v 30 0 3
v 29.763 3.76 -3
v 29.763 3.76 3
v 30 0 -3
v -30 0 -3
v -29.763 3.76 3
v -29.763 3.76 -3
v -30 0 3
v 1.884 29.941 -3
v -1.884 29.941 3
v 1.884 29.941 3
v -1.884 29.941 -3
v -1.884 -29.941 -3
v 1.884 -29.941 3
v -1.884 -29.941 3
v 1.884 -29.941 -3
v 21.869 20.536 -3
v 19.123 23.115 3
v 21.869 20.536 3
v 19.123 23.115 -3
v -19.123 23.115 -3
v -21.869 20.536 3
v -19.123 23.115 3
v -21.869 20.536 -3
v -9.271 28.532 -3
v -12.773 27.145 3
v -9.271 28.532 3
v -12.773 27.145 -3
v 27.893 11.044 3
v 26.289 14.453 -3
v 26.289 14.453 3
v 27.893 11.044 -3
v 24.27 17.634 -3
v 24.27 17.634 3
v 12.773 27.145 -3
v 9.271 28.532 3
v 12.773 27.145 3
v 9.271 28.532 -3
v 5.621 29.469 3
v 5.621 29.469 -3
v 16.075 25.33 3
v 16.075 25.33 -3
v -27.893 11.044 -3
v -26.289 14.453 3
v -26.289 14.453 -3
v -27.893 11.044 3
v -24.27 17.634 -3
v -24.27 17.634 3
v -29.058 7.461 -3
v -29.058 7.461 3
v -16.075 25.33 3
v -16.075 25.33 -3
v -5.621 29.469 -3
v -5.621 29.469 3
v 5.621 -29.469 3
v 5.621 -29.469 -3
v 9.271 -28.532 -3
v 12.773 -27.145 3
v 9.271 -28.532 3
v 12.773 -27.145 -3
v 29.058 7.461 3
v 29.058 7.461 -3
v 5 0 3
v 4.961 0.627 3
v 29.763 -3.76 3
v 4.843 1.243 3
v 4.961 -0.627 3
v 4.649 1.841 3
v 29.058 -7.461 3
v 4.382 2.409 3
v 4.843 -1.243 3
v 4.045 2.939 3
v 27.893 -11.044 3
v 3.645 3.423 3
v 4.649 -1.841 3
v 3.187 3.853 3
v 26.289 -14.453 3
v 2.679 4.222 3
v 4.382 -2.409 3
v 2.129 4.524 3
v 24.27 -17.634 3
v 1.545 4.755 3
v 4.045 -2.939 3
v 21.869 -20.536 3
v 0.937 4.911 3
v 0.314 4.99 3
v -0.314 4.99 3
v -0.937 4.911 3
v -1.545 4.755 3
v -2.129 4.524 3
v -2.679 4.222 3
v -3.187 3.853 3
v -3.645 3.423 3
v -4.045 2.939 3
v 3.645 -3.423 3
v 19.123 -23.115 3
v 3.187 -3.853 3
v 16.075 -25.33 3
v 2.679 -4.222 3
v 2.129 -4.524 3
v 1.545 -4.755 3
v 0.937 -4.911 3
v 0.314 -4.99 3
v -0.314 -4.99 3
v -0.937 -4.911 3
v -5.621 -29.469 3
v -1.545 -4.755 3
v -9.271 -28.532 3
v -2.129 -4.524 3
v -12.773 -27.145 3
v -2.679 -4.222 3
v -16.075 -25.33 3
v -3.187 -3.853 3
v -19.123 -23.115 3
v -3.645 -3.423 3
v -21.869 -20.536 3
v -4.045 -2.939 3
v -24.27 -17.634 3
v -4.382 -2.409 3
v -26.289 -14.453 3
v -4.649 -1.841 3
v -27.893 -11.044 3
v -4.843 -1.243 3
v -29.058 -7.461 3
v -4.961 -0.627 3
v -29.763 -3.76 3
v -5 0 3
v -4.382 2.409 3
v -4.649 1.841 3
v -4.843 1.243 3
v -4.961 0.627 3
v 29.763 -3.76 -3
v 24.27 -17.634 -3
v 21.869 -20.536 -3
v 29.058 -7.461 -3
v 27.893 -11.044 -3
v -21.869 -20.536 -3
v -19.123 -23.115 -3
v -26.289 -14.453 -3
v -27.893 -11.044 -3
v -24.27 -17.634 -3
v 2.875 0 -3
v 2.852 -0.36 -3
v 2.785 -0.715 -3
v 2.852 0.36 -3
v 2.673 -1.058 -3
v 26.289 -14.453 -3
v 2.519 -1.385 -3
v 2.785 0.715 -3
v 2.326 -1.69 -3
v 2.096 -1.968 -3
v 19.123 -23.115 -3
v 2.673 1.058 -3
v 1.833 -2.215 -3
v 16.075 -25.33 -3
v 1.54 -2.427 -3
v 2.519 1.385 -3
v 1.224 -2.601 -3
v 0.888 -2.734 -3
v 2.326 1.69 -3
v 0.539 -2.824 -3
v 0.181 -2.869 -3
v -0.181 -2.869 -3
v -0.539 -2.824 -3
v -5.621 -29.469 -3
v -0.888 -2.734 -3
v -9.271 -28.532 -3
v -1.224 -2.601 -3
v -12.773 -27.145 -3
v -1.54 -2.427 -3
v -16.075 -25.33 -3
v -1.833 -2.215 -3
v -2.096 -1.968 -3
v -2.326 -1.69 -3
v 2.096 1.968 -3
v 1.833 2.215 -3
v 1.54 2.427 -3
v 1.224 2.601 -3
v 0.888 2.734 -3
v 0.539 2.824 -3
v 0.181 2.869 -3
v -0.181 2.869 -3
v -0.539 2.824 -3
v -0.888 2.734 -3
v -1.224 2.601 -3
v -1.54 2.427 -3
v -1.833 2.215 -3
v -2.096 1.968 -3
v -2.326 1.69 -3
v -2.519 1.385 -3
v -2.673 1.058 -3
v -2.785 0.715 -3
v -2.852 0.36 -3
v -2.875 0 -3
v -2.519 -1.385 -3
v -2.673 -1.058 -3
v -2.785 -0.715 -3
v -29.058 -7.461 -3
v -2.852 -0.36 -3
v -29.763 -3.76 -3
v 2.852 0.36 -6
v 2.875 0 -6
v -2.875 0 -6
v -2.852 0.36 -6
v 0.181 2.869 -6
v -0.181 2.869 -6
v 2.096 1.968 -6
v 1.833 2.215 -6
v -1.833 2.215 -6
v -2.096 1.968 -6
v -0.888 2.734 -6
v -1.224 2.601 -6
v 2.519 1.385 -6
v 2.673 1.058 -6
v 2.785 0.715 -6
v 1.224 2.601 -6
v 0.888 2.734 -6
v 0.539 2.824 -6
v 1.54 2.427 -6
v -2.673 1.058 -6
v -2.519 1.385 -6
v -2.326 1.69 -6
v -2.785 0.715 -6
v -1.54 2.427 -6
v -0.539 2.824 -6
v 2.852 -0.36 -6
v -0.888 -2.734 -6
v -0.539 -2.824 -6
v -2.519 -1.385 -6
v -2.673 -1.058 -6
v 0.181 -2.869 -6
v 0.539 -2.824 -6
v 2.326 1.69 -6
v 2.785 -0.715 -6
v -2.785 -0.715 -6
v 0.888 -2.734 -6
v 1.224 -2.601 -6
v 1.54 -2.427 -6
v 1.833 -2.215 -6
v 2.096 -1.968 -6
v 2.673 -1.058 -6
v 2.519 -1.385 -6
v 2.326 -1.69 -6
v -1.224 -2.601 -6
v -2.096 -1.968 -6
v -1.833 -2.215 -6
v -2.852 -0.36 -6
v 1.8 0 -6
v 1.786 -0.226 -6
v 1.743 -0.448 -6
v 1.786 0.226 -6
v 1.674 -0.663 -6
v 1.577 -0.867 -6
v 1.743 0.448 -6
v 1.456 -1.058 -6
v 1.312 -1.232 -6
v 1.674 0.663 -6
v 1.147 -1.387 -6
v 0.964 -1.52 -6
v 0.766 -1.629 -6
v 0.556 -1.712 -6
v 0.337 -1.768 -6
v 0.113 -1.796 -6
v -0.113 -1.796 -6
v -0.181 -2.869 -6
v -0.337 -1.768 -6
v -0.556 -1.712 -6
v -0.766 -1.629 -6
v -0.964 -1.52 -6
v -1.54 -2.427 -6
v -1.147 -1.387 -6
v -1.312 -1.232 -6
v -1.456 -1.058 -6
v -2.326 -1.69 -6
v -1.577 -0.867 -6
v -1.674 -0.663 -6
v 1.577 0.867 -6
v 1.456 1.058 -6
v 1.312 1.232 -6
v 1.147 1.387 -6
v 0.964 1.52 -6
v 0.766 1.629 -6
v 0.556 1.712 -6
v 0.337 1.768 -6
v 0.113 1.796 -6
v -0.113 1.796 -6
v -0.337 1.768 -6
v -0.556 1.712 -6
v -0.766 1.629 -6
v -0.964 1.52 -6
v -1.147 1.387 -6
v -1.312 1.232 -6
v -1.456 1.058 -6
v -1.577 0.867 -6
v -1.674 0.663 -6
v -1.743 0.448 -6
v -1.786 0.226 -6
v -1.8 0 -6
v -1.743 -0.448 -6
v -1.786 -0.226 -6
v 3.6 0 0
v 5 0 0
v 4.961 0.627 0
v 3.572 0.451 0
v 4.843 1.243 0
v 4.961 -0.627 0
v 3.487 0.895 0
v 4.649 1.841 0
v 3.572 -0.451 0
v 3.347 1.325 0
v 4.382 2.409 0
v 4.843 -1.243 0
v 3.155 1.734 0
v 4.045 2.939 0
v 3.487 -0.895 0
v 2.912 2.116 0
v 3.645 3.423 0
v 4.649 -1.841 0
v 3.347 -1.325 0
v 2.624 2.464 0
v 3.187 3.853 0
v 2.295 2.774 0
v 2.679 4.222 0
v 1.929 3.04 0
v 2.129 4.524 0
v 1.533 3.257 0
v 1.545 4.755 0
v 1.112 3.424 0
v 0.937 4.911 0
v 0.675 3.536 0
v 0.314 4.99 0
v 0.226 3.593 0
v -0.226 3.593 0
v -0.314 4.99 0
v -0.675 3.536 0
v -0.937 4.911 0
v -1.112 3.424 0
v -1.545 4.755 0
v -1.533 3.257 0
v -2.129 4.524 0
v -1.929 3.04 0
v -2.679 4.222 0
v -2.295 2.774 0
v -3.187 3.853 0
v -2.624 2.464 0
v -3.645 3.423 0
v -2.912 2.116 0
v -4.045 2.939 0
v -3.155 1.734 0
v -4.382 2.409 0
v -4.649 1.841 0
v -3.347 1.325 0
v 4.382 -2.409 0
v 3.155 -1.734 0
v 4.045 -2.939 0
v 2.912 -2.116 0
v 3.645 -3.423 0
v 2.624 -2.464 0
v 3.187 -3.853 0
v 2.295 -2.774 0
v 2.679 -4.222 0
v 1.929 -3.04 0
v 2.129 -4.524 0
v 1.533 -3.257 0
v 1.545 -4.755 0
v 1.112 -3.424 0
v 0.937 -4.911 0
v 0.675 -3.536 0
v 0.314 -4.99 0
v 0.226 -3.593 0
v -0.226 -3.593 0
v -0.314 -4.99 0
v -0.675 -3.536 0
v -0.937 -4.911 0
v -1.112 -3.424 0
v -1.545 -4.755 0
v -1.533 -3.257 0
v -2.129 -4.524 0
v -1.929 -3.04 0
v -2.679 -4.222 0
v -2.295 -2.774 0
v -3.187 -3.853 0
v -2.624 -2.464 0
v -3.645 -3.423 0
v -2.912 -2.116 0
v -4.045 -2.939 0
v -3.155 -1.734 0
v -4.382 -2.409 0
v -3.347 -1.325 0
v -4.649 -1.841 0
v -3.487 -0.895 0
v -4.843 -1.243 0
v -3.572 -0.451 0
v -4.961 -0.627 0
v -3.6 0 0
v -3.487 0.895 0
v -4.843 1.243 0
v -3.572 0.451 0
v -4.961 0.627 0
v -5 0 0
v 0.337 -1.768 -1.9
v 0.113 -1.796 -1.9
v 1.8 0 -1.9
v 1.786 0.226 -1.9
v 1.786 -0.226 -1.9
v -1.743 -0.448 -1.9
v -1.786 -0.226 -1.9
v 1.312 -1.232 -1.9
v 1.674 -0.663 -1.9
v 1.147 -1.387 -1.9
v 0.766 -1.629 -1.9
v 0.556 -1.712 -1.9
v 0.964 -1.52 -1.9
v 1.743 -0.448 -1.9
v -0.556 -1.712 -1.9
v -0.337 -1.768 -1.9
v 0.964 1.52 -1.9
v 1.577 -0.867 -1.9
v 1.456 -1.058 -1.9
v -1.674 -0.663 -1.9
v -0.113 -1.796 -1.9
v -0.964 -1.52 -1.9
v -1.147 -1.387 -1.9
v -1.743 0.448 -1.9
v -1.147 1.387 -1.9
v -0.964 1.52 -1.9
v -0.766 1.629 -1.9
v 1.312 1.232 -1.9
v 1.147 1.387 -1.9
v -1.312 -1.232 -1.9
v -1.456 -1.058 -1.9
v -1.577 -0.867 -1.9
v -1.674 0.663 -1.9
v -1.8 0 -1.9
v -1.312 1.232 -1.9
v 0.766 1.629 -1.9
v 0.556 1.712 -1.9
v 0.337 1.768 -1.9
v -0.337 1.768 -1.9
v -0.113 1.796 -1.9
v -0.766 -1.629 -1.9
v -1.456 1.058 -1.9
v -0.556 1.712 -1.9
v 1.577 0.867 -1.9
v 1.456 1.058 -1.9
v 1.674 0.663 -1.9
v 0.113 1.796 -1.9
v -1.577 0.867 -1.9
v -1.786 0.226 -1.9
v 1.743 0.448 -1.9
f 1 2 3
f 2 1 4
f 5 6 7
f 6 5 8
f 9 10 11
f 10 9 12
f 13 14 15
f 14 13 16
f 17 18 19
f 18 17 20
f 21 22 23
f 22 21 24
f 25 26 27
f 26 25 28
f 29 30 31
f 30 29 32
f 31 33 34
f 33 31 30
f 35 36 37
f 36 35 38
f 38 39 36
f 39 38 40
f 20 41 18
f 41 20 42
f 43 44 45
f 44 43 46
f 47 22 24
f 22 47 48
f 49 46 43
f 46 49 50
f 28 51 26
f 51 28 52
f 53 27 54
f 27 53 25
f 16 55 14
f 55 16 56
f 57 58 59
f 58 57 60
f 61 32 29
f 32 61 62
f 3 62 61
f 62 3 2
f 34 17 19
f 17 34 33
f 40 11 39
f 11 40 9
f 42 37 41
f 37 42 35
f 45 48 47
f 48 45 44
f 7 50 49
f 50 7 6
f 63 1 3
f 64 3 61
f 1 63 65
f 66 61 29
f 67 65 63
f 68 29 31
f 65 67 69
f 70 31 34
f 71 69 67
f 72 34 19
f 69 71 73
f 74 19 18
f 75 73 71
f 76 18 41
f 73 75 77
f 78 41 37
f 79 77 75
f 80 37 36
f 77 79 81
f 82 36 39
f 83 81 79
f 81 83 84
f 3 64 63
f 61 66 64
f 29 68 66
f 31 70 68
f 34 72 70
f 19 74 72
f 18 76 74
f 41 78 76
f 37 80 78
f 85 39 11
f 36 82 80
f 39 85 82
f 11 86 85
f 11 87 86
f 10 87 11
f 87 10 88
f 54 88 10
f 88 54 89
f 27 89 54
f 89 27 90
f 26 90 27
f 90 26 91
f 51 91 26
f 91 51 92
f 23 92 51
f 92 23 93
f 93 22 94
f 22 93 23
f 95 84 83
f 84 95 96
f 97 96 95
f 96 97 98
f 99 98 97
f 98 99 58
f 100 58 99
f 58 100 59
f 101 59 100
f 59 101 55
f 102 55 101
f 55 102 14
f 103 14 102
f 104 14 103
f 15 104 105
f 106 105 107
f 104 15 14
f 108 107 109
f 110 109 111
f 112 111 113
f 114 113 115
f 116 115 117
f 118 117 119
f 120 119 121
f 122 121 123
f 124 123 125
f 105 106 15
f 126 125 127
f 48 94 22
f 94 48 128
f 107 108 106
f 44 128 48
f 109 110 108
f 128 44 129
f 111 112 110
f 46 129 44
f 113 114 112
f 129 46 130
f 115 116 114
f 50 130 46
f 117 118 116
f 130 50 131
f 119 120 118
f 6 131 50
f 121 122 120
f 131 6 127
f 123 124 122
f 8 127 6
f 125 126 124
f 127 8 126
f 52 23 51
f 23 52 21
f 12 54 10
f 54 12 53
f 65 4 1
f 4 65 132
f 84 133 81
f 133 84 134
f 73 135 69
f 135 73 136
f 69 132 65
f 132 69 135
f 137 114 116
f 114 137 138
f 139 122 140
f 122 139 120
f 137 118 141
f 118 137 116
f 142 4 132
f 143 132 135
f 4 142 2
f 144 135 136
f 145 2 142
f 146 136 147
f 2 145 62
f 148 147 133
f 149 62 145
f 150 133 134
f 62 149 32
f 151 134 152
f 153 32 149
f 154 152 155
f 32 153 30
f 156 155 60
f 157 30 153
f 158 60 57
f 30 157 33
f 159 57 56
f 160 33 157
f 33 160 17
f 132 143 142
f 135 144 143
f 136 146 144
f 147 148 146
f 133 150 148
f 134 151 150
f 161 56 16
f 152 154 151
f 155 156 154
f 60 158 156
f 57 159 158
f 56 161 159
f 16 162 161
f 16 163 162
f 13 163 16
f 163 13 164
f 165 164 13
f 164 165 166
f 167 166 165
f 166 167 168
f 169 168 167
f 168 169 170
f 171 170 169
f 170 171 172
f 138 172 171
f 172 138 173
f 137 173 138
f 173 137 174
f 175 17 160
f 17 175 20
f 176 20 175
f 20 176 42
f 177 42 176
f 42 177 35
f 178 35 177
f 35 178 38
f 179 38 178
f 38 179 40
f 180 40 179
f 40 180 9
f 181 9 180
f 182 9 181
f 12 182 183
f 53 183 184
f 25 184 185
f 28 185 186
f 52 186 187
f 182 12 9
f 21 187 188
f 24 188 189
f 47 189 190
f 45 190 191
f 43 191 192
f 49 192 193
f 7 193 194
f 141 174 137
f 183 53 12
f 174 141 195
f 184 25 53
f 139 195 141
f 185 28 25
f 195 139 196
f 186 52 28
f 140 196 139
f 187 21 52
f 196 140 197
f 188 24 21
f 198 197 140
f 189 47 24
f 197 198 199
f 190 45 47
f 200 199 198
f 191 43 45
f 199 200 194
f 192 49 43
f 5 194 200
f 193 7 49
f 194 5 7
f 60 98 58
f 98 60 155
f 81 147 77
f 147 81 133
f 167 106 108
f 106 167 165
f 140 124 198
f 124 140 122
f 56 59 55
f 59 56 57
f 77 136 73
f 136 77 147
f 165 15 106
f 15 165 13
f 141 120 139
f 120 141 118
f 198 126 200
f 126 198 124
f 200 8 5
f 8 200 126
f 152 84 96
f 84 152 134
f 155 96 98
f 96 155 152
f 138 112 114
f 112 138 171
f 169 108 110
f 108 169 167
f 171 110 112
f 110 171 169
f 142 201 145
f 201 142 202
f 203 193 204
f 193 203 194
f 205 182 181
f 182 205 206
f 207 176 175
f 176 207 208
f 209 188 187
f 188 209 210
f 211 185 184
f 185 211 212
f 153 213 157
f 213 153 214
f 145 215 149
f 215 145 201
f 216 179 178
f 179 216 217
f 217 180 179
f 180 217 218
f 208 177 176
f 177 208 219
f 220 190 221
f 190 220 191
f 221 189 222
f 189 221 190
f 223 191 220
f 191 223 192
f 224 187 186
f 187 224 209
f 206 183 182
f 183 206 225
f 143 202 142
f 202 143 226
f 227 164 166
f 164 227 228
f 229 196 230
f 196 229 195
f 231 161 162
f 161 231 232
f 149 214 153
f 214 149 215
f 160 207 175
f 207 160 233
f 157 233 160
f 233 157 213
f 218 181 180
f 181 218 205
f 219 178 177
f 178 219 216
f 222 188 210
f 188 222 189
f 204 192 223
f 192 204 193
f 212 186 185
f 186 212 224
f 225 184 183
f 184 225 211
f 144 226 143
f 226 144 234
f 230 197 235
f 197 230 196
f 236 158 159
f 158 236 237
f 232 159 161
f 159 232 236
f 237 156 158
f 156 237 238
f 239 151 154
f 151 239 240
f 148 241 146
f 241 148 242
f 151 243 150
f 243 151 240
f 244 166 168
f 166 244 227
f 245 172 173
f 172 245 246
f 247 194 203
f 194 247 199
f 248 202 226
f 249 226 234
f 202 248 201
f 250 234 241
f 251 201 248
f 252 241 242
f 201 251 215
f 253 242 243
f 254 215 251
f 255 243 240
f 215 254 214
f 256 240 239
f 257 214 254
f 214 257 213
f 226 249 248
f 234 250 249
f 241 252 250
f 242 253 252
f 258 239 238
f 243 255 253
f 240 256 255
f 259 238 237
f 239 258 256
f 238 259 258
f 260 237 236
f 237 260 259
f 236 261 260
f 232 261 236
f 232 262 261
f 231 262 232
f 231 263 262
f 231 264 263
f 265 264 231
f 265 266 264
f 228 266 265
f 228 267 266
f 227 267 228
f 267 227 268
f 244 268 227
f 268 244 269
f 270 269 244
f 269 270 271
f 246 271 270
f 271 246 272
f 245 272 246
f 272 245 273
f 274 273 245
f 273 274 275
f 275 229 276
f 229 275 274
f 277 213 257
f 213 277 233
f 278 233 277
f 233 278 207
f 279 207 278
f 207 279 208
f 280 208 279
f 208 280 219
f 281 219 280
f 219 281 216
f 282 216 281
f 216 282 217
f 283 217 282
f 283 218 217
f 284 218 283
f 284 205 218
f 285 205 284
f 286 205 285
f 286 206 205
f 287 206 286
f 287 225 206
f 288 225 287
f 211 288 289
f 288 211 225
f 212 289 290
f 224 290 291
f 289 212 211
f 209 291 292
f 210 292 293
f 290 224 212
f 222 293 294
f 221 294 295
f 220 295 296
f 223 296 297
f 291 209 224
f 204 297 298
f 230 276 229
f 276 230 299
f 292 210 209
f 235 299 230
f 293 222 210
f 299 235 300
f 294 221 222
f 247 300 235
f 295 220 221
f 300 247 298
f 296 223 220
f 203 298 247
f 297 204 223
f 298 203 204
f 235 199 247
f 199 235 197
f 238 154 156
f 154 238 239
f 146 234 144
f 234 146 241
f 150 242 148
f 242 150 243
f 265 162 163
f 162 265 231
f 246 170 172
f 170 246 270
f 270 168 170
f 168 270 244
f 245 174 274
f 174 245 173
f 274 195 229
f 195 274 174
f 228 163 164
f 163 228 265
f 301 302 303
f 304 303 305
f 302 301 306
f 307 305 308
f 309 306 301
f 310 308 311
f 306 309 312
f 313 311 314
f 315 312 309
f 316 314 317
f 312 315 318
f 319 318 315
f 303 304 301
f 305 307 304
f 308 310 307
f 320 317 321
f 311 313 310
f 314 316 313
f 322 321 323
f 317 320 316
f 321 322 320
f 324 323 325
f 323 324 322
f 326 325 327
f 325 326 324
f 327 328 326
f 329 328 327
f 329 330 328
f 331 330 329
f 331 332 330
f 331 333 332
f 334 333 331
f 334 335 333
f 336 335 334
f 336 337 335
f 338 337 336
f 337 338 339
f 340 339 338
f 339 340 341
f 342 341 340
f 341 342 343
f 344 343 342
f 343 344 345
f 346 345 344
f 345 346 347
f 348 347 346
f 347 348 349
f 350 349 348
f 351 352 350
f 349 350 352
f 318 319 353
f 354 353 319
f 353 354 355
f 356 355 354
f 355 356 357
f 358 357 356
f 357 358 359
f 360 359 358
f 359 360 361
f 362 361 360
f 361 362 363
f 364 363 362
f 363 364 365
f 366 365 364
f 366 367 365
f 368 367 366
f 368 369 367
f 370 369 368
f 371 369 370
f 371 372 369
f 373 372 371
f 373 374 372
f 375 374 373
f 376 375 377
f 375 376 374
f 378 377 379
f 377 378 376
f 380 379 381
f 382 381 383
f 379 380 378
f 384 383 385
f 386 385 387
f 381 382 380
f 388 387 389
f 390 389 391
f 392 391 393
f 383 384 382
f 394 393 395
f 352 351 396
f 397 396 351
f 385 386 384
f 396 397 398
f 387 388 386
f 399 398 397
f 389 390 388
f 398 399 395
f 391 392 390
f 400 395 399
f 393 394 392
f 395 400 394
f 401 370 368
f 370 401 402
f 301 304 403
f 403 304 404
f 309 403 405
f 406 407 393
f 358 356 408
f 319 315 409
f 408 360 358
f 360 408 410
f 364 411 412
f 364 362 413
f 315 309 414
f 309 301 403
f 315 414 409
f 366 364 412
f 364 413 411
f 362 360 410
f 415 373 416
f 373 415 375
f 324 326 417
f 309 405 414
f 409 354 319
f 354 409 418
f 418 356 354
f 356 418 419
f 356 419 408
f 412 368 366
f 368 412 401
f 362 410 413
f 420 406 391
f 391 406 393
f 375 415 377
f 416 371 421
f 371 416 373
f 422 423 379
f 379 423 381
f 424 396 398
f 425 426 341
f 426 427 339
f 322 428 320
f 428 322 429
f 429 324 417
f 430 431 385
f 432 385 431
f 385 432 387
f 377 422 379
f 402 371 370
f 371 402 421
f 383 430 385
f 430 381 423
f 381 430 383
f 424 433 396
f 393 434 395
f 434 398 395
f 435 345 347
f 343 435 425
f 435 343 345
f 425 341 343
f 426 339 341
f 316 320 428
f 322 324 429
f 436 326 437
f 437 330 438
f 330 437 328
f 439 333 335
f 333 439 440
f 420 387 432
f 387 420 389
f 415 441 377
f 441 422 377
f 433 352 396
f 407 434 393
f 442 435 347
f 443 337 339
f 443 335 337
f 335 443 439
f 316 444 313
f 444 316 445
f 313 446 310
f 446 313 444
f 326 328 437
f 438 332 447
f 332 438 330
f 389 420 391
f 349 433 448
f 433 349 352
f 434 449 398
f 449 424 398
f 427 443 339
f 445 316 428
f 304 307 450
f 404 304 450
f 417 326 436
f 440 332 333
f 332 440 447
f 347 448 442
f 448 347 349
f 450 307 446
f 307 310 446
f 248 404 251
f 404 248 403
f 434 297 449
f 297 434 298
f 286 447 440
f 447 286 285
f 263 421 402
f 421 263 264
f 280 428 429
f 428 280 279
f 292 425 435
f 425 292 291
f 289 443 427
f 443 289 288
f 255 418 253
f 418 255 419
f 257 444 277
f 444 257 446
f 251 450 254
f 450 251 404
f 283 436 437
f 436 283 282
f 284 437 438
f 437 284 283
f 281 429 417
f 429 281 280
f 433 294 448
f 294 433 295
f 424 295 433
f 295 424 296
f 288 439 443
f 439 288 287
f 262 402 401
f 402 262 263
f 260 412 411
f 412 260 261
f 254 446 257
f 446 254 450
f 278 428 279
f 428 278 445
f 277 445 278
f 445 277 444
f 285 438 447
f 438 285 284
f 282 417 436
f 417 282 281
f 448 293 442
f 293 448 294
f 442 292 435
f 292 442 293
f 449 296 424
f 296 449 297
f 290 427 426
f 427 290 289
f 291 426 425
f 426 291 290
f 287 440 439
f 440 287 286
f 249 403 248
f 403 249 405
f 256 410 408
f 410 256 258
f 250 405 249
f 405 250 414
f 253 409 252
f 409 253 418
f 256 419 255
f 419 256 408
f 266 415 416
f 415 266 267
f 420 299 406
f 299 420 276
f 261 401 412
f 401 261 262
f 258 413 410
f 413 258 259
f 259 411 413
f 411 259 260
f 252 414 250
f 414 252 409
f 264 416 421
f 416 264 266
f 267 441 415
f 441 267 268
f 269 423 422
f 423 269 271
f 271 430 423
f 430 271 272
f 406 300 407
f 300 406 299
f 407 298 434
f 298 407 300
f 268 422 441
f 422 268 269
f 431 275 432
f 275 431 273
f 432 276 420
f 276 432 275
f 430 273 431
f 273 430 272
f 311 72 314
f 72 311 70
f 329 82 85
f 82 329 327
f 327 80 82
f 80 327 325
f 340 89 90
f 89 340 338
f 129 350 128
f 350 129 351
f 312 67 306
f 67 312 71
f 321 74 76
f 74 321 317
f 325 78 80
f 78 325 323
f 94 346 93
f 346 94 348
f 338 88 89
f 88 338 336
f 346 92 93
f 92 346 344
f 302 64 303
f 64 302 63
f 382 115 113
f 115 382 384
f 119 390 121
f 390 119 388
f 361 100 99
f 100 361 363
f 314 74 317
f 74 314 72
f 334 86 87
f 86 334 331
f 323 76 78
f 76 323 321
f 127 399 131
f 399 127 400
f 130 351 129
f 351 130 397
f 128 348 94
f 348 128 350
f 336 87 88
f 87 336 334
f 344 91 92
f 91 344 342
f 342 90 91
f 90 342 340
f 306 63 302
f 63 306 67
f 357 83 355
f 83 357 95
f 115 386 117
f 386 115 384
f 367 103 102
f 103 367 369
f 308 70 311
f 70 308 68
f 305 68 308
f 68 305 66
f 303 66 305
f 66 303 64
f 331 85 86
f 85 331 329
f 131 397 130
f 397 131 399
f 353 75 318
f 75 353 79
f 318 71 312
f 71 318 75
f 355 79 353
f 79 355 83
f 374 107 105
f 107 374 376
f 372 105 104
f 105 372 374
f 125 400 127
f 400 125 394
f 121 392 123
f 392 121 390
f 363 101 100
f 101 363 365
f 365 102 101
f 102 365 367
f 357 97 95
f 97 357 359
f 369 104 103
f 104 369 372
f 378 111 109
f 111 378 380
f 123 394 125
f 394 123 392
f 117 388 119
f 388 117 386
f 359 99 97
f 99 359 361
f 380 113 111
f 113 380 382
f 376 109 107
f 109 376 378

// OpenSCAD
$fn = 50;


difference() {
	union() {
		translate(v = [0, 0, -3.0000000000]) {
			cylinder(h = 6, r = 30.0000000000);
		}
		#translate(v = [0, 0, -6.0000000000]) {
			cylinder(h = 6, r = 2.8750000000);
		}
	}
	union() {
		translate(v = [0, 0, 0]) {
			rotate(a = [0, 0, 0]) {
				difference() {
					union() {
						translate(v = [0, 0, -6.0000000000]) {
							cylinder(h = 6, r = 1.5000000000);
						}
						translate(v = [0, 0, -1.9000000000]) {
							cylinder(h = 1.9000000000, r1 = 1.8000000000, r2 = 3.6000000000);
						}
						translate(v = [0, 0, -6.0000000000]) {
							cylinder(h = 6, r = 1.8000000000);
						}
						translate(v = [0, 0, -6.0000000000]) {
							cylinder(h = 6, r = 1.5000000000);
						}
					}
					union();
				}
			}
		}
		#cylinder(h = 3, r = 5.0000000000);
	}
}
